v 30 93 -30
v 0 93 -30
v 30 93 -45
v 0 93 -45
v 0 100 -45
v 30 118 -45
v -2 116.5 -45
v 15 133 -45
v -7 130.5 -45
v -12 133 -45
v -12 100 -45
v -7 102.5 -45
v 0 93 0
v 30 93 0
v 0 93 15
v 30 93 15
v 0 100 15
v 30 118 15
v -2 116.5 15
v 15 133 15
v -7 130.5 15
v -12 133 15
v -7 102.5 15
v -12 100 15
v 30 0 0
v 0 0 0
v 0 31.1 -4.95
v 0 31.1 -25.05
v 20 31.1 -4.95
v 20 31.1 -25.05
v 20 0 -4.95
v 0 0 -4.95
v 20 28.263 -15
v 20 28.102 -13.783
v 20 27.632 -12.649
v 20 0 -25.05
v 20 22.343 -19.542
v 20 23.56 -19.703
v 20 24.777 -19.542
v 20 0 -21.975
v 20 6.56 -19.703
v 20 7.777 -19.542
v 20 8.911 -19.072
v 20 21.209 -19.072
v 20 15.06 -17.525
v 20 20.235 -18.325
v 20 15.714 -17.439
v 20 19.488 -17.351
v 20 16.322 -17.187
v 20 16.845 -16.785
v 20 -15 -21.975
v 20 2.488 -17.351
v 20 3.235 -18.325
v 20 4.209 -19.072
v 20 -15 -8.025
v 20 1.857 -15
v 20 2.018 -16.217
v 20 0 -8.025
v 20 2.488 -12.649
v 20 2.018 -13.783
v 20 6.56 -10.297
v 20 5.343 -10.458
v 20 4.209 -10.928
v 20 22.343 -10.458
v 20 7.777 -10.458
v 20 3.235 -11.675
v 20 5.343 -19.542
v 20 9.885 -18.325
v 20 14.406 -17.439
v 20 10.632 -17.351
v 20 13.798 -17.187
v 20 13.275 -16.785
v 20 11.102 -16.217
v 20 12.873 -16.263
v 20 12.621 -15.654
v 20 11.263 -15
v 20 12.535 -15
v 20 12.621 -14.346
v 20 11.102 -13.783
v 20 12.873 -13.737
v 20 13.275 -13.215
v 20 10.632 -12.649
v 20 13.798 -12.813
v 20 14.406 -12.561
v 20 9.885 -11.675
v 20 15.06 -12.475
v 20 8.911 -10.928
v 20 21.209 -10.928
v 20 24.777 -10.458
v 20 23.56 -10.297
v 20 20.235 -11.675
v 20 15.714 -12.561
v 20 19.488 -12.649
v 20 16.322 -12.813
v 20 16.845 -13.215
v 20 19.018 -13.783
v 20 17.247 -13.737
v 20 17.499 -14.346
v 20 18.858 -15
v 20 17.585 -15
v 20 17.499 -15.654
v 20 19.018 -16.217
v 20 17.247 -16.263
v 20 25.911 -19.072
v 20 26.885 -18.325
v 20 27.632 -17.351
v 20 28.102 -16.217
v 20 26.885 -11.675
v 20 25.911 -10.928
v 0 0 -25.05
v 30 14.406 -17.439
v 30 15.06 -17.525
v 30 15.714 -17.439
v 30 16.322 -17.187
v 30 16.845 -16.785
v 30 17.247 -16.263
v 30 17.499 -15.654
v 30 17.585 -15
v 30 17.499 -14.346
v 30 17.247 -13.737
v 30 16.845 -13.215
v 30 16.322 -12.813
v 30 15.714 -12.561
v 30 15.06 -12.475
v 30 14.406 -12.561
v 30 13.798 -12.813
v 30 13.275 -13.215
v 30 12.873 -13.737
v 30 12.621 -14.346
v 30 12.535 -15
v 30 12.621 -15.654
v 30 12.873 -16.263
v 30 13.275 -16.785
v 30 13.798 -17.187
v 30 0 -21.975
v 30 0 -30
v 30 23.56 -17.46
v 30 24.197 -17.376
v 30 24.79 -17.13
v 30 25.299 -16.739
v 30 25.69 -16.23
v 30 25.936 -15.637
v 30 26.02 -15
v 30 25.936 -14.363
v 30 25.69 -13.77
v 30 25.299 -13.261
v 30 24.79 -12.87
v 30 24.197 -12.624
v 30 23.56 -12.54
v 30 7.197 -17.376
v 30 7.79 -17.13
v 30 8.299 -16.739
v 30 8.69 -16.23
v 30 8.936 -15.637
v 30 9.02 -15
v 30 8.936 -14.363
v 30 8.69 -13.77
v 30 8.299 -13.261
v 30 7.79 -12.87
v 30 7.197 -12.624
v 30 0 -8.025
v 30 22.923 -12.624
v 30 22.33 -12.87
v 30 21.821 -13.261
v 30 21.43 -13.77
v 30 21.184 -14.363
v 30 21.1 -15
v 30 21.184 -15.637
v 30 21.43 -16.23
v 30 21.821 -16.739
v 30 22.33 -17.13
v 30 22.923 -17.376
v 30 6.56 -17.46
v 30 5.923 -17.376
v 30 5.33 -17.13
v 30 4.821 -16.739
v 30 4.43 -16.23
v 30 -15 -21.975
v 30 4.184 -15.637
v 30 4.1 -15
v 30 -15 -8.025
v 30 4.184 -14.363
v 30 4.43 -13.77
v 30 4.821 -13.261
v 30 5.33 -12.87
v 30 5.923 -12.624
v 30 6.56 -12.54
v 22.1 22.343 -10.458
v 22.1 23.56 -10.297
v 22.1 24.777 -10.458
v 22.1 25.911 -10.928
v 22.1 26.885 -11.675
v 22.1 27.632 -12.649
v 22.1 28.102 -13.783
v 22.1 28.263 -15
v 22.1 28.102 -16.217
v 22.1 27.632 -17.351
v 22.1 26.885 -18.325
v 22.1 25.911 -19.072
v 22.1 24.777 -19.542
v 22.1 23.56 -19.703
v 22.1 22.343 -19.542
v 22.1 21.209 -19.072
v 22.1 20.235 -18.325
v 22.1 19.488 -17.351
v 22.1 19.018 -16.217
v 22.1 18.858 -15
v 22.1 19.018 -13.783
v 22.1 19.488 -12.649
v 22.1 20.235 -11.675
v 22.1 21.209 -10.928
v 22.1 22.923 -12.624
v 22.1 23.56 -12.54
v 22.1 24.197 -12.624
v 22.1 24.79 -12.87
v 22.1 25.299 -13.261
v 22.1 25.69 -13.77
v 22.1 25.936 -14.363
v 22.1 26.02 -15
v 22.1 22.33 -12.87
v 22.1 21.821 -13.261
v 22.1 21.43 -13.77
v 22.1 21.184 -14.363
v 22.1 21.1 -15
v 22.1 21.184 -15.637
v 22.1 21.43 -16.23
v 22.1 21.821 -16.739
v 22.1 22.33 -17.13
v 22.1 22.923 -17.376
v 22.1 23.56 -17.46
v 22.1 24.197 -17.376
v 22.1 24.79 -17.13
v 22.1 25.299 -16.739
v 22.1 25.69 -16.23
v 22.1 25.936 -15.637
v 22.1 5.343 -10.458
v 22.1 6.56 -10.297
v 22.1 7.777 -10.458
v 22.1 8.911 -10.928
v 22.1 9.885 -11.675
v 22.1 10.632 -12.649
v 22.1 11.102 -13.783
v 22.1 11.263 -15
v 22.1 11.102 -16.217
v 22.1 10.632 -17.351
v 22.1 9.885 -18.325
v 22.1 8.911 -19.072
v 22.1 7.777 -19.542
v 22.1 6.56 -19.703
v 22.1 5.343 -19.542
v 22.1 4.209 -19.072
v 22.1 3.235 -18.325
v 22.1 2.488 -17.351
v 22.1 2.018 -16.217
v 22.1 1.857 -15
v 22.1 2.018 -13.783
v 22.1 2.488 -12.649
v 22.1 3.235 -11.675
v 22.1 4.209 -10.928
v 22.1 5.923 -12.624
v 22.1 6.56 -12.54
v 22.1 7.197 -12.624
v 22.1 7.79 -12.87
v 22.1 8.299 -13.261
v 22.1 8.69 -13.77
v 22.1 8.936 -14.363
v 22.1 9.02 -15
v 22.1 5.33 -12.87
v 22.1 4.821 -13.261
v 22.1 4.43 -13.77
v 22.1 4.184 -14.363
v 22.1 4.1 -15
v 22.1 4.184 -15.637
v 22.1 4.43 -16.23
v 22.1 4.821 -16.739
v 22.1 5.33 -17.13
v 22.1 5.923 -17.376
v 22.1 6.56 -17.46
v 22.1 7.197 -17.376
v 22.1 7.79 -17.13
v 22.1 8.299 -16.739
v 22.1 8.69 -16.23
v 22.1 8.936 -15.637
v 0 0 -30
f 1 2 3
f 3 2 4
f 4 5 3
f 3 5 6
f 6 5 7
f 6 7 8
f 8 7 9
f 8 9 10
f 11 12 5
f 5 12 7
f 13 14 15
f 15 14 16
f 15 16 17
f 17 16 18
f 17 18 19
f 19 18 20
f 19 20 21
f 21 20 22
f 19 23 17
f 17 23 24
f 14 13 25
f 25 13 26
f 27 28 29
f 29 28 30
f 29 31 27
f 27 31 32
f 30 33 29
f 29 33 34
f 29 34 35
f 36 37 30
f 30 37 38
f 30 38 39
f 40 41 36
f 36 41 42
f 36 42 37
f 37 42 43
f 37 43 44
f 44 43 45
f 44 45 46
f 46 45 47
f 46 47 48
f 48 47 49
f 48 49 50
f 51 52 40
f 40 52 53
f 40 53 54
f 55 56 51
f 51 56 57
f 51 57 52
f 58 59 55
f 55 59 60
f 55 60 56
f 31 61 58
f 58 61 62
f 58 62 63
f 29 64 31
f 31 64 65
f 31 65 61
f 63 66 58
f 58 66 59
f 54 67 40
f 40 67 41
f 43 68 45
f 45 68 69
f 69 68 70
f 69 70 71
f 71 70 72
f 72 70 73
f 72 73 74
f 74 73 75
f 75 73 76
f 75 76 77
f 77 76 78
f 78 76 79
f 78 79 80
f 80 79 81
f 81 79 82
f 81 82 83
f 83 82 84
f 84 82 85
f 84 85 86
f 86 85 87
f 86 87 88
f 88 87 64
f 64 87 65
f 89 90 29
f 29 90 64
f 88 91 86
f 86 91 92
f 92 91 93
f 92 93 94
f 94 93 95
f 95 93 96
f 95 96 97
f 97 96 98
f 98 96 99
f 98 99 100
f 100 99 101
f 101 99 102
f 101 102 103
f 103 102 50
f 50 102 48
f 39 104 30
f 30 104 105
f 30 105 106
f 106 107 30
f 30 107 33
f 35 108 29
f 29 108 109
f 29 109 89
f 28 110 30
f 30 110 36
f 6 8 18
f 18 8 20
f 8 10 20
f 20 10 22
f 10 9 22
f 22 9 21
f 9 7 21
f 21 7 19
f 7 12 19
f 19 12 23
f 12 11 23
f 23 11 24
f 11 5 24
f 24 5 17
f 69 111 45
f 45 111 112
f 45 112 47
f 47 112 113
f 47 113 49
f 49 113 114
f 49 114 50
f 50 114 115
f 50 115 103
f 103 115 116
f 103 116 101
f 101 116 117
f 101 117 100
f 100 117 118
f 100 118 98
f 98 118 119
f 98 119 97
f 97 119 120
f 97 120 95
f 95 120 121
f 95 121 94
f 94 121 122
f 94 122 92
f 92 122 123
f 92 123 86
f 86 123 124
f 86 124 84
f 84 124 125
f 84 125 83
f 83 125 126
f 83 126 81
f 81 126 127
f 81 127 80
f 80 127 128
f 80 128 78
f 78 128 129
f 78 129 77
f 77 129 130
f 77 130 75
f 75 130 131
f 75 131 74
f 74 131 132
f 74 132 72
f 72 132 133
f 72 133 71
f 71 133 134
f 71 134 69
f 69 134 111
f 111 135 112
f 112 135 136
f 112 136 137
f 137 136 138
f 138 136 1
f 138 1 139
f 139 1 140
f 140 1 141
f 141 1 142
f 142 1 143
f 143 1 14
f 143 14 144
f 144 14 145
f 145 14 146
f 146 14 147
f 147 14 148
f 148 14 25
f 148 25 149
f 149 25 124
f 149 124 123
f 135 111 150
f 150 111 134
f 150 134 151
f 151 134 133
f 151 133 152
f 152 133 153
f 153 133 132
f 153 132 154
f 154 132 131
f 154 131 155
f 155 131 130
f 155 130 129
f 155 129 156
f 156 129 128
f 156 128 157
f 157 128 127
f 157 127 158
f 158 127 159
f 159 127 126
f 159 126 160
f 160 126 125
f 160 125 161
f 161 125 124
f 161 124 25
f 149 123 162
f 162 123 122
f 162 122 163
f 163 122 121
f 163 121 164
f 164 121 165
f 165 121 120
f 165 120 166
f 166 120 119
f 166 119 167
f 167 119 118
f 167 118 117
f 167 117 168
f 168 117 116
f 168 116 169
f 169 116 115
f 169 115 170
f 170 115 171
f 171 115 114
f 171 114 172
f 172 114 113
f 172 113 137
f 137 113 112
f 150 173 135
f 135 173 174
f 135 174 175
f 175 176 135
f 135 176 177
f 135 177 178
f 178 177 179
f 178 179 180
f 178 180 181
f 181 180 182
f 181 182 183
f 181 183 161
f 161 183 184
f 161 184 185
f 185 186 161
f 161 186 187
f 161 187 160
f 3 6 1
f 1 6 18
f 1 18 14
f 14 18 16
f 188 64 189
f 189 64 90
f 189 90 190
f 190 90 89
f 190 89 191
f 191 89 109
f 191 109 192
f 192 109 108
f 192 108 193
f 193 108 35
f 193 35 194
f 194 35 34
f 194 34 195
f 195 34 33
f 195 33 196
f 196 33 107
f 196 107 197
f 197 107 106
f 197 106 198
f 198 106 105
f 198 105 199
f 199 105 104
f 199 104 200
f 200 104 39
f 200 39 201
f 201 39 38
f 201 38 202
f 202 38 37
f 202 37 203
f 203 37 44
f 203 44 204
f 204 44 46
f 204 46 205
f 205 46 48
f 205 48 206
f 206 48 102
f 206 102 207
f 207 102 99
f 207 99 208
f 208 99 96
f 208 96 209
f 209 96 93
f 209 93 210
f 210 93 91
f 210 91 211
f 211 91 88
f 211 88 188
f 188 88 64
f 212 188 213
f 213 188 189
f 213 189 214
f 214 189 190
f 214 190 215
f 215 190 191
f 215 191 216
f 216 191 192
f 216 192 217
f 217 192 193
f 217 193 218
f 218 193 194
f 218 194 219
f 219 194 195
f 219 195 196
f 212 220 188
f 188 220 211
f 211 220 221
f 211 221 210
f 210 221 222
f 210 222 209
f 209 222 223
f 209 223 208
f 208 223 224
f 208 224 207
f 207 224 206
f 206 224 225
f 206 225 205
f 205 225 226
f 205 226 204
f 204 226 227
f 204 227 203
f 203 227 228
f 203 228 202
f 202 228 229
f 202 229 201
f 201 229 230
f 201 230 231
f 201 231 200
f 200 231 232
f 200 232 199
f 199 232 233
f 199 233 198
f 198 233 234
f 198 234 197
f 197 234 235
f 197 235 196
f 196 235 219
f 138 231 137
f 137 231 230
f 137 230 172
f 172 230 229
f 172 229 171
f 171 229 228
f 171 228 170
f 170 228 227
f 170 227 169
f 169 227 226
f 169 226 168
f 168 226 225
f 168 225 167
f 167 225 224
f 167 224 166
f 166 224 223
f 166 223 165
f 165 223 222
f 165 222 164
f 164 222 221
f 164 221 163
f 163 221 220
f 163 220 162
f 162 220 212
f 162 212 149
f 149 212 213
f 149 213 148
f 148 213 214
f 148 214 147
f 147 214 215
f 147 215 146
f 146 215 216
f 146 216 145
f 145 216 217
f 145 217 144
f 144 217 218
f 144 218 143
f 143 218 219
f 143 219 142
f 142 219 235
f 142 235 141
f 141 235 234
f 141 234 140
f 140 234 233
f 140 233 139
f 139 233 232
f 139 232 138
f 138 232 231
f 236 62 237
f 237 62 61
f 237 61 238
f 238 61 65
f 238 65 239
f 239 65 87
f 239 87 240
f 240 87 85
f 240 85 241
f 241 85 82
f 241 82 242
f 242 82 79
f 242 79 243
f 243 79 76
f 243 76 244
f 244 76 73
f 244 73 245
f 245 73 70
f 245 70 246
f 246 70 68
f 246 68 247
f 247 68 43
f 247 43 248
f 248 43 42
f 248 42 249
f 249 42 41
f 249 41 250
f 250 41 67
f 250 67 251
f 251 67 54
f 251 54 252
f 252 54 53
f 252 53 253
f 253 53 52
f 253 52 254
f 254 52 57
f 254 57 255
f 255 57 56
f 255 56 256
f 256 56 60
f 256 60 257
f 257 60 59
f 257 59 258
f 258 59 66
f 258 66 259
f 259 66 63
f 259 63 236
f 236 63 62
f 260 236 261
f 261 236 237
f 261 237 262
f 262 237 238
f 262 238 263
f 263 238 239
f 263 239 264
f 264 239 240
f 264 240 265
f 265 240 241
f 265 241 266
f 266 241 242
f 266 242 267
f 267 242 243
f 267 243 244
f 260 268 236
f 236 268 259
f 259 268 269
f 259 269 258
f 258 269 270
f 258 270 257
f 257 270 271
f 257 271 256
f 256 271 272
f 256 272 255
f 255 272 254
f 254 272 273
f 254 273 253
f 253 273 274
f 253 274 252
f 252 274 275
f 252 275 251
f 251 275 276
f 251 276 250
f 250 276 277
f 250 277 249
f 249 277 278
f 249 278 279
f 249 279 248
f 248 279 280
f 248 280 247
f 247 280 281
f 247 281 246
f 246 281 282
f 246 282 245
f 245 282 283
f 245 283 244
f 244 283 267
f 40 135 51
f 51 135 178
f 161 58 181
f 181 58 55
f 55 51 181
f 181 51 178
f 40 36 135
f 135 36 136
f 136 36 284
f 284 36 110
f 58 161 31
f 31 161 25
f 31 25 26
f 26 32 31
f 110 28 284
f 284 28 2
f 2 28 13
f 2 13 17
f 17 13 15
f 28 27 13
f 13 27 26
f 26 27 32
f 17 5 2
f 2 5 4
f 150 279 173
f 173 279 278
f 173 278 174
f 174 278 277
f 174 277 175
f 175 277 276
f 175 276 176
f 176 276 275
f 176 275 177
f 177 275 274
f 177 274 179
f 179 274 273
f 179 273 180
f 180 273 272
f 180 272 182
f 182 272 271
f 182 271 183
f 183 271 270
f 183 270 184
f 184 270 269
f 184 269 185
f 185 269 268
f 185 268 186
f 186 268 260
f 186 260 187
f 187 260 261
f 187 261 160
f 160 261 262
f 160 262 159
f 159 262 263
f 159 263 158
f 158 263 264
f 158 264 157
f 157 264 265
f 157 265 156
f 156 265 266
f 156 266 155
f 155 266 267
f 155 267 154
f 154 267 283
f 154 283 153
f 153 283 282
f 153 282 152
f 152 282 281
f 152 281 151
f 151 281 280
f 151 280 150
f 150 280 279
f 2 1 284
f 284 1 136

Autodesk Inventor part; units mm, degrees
ref_plane "YZ Plane" through (0, 0, 0) normal (1, 0, 0) x (0, 1, 0)
ref_plane "XZ Plane" through (0, 0, 0) normal (0, 1, 0) x (-1, 0, 0)
sketch "Sketch1" plane through (0, 0, 0) normal (0, 0, 1) x (1, 0, 0)
  line L0 (0, 0) -> (25, 0)
  line L1 (25, 0) -> (25, 40)
  line L2 (25, 40) -> (0, 40)
  line L3 (0, 40) -> (0, 0)
  dimension "d1" = 25
  dimension "d2" = 40
  dimension "d3" = 25
extrude "Extrusion1" add sketch "Sketch1" against normal blind 30
sketch "Sketch2" plane through (25, 0, 0) normal (1, 0, 0) x (0, 0, -1)
  line L0 (0, 0) -> (30, 0) projected
  circle A0 centre (15, 6.56) radius 2.46
extrude "Extrusion2" cut sketch "Sketch2" against normal blind 30
sketch "Sketch3" plane through (0, 0, 0) normal (-1, 0, 0) x (0, 0, 1)
  line L0 (0, 0) -> (-30, 0) projected
  line L1 (-25.05, 0) -> (-4.95, 0)
  line L2 (-4.95, 0) -> (-4.95, 33.12)
  line L3 (-4.95, 33.12) -> (-25.05, 33.12)
  line L4 (-25.05, 33.12) -> (-25.05, 0)
  dimension "d11" = 20.1
extrude "Extrusion3" cut sketch "Sketch3" against normal blind 20
sketch "Sketch4" plane through (0, 0, 0) normal (0, -1, 0) x (1, 0, 0)
  line L0 (20, -4.95) -> (20, -25.05) projected
  line L1 (20, -15) -> (25, -15)
  line L2 (25, 0) -> (25, -30) projected
  line L3 (20, -8.025) -> (25, -8.025)
  line L4 (25, -8.025) -> (25, -21.975)
  line L5 (25, -21.975) -> (20, -21.975)
  line L6 (20, -21.975) -> (20, -8.025)
  line L7 (20, -8.025) -> (25, -21.975) construction
  line L8 (25, -8.025) -> (20, -21.975) construction
  line L9 (25, -12.54) -> (25, -17.46) projected
  point P0 (0, 0)
  point P1 (22.5, -15)
  dimension "d14" = 13.95
extrude "Extrusion4" add sketch "Sketch4" along normal blind 15
sketch "Sketch5" plane through (20, 0, 0) normal (-1, 0, 0) x (0, 0, 1)
  circle A0 centre (-15, 6.56) radius 2.46 projected
  circle A1 centre (-15, 6.56) radius 4.7025
  circle A2 centre (-15, 6.56) radius 2.46 projected
  circle A3 centre (-15, 6.56) radius 2.46
  point P0 (0, 0)
  dimension "d17" = 9.405
extrude "Extrusion5" cut sketch "Sketch5" against normal blind 2.1
sketch "Sketch6" plane through (25, 0, 0) normal (1, 0, 0) x (0, 0, -1)
  circle A0 centre (15, 6.56) radius 4.7025 projected
  line L0 (15, 6.56) -> (15, 23.56)
  circle A1 centre (15, 23.56) radius 2.46
  point P0 (0, 0)
  dimension "d20" = 17
  dimension "d21" = 4.92
extrude "Extrusion6" cut sketch "Sketch6" against normal blind 10 contours A1
sketch "Sketch7" plane through (20, 0, 0) normal (-1, 0, 0) x (0, 0, 1)
  circle A0 centre (-15, 23.56) radius 2.46 projected
  circle A1 centre (-15, 23.56) radius 4.7025
  point P0 (0, 0)
  dimension "d24" = 9.405
extrude "Extrusion7" cut sketch "Sketch7" against normal blind 2.1
sketch "Sketch9" plane through (25, 0, 0) normal (1, 0, 0) x (0, 0, -1)
  circle A0 centre (15, 6.56) radius 2.46 projected
  circle A1 centre (15, 6.56) radius 2.46
  circle A2 centre (15, 23.56) radius 2.46 projected
  circle A3 centre (15, 23.56) radius 2.46
  line L0 (30, 40) -> (30, 0) projected
  line L1 (30, 0) -> (30, 40)
  line L2 (30, 40) -> (0, 40)
  line L3 (0, 40) -> (0, 0)
  line L4 (0, 0) -> (8.025, 0) projected
  line L5 (21.975, 0) -> (21.975, -15)
  line L6 (21.975, -15) -> (8.025, -15)
  line L7 (8.025, -15) -> (8.025, 0)
  line L8 (0, 0) -> (8.025, 0)
  line L9 (21.975, 0) -> (30, 0)
extrude "Extrusion8" add sketch "Sketch9" along normal blind 5
sketch "Sketch10" plane through (0, 40, 0) normal (0, 1, 0) x (1, 0, 0)
  line L0 (0, 30) -> (30, 30) projected
  line L1 (30, 0) -> (0, 0) projected
  line L2 (0, 30) -> (30, 30)
  line L3 (30, 30) -> (30, 0)
  line L4 (30, 0) -> (0, 0)
  line L5 (0, 0) -> (0, 30)
extrude "Extrusion9" add sketch "Sketch10" along normal blind 30
sketch "Sketch12" plane through (30, 0, 0) normal (1, 0, 0) x (0, 0, -1)
  circle A0 centre (15, 6.56) radius 2.46 projected
  line L0 (15, 6.56) -> (15, 15.06)
  circle A1 centre (15, 15.06) radius 2.525
  point P0 (0, 0)
  dimension "d31" = 8.5
  dimension "d33" = 5.05
extrude "Extrusion10" cut sketch "Sketch12" against normal blind 30 contours A1
sketch "Sketch14" plane through (0, 0, 0) normal (0, 0, 1) x (1, 0, 0)
  line L0 (30, 70) -> (0, 70) projected
  line L1 (0, 70) -> (0, 85)
  line L2 (30, 0) -> (30, 70) projected
  line L3 (30, 118) -> (30, 70)
  line L4 (30, 105) -> (30, 100)
  line L5 (-12, 133) -> (15, 133)
  line L6 (-7, 130.5) -> (-12, 133)
  line L7 (-7, 130.5) -> (-2, 116.5)
  line L8 (-7, 102.5) -> (-12, 100)
  line L9 (-7, 102.5) -> (-2, 116.5)
  line L10 (30, 118) -> (15, 133)
  line L11 (0, 100) -> (-12, 100)
  line L12 (0, 100) -> (0, 85)
  point P0 (0, 0)
  dimension "d79" = 12
extrude "Extrusion12" add sketch "Sketch14" against normal blind 30
sketch "Sketch15" plane through (0, 0, -25.05) normal (-1, 0, 0) x (0, 0, 1)
  line L0 (0, 33.12) -> (20.1, 33.12) projected
  line L1 (20.1, 33.12) -> (20.1, 0) projected
  line L2 (0, 33.12) -> (20.1, 33.12)
  line L3 (20.1, 33.12) -> (20.1, 31.1)
  line L4 (20.1, 31.1) -> (0, 31.1)
  line L5 (0, 31.1) -> (0, 33.12)
  point P0 (25.05, 0)
  dimension "d57" = 2.02
extrude "Extrusion13" add sketch "Sketch15" against normal blind 20
sketch "Sketch22" plane through (0, 0, 0) normal (0, 0, 1) x (1, 0, 0)
  line L0 (0, 100) -> (-12, 100) projected
  line L1 (0, 100) -> (-12, 100)
  line L2 (-12, 100) -> (-7, 102.5) projected
  line L3 (-12, 100) -> (-7, 102.5)
  line L4 (-7, 102.5) -> (-2, 116.5) projected
  line L5 (-7, 102.5) -> (-2, 116.5)
  line L6 (-2, 116.5) -> (-7, 130.5) projected
  line L7 (-2, 116.5) -> (-7, 130.5)
  line L8 (-7, 130.5) -> (-12, 133) projected
  line L9 (-7, 130.5) -> (-12, 133)
  line L10 (-12, 133) -> (15, 133) projected
  line L11 (-12, 133) -> (15, 133)
  line L12 (15, 133) -> (30, 118) projected
  line L13 (15, 133) -> (30, 118)
  line L14 (30, 118) -> (30, 93)
  line L15 (30, 0) -> (30, 118) projected
  line L16 (30, 93) -> (0, 93)
  line L17 (0, 100) -> (0, 0) projected
  line L18 (0, 93) -> (0, 100)
  dimension "d80" = 25
extrude "Extrusion14" add sketch "Sketch22" along normal blind 15
ref_plane "Work Plane1" through (0, 0, -15) normal (0, 0, 1) x (1, 0, 0)
mirror "Mirror1" about plane through (0, 0, -15) normal (0, 0, 1) of "Extrusion14"
properties part number "rec_b_28mm_x_60mm"
